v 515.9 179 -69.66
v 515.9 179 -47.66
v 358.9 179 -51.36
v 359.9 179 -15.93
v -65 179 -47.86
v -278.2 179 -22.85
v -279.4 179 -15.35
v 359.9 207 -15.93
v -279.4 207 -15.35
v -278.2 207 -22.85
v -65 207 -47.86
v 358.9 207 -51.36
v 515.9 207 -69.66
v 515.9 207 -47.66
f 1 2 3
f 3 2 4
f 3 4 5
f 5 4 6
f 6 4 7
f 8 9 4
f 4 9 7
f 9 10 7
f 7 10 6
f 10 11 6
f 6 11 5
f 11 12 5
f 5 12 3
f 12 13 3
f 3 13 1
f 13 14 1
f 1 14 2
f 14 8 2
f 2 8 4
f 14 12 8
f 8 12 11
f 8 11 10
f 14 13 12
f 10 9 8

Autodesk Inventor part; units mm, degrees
ref_plane "YZ Plane" through (0, 0, 0) normal (1, 0, 0) x (0, 1, 0)
ref_plane "XY Plane" through (0, 0, 0) normal (0, 0, 1) x (1, 0, 0)
ref_plane "Work Plane1" through (0, 193, 0) normal (0, 1, 0) x (-1, 0, 0)
sketch "Sketch1" plane through (0, 193, 0) normal (0, 1, 0) x (-1, 0, 0)
  line L0 (0, -83.592) -> (0, 13.932) construction
  line L1 (438.46, 0) -> (-674.96, 0) construction
  line L2 (279.4, -15.35) -> (278.2, -22.85)
  line L3 (278.2, -22.85) -> (65, -47.86)
  line L4 (65, -47.86) -> (-358.9, -51.36)
  line L5 (-358.9, -51.36) -> (-515.9, -69.66)
  line L6 (-515.9, -69.66) -> (-515.9, -47.66)
  line L7 (-515.9, -47.66) -> (-359.9, -15.93)
  line L8 (-359.9, -15.93) -> (279.4, -15.35)
  point P0 (0, 0)
  dimension "d1" = 22.85
  dimension "d2" = 47.86
  dimension "d3" = 15.35
  dimension "d4" = 279.4
  dimension "d5" = 278.2
  dimension "d6" = 65
  dimension "d7" = 51.36
  dimension "d8" = 69.66
  dimension "d9" = 47.66
  dimension "d10" = 15.93
  dimension "d11" = 515.9
  dimension "d12" = 515.9
  dimension "d13" = 358.9
  dimension "d14" = 359.9
extrude "Extrusion1" add sketch "Sketch1" along normal mid plane 28
properties part number "Friend_sideskirt_collision"
